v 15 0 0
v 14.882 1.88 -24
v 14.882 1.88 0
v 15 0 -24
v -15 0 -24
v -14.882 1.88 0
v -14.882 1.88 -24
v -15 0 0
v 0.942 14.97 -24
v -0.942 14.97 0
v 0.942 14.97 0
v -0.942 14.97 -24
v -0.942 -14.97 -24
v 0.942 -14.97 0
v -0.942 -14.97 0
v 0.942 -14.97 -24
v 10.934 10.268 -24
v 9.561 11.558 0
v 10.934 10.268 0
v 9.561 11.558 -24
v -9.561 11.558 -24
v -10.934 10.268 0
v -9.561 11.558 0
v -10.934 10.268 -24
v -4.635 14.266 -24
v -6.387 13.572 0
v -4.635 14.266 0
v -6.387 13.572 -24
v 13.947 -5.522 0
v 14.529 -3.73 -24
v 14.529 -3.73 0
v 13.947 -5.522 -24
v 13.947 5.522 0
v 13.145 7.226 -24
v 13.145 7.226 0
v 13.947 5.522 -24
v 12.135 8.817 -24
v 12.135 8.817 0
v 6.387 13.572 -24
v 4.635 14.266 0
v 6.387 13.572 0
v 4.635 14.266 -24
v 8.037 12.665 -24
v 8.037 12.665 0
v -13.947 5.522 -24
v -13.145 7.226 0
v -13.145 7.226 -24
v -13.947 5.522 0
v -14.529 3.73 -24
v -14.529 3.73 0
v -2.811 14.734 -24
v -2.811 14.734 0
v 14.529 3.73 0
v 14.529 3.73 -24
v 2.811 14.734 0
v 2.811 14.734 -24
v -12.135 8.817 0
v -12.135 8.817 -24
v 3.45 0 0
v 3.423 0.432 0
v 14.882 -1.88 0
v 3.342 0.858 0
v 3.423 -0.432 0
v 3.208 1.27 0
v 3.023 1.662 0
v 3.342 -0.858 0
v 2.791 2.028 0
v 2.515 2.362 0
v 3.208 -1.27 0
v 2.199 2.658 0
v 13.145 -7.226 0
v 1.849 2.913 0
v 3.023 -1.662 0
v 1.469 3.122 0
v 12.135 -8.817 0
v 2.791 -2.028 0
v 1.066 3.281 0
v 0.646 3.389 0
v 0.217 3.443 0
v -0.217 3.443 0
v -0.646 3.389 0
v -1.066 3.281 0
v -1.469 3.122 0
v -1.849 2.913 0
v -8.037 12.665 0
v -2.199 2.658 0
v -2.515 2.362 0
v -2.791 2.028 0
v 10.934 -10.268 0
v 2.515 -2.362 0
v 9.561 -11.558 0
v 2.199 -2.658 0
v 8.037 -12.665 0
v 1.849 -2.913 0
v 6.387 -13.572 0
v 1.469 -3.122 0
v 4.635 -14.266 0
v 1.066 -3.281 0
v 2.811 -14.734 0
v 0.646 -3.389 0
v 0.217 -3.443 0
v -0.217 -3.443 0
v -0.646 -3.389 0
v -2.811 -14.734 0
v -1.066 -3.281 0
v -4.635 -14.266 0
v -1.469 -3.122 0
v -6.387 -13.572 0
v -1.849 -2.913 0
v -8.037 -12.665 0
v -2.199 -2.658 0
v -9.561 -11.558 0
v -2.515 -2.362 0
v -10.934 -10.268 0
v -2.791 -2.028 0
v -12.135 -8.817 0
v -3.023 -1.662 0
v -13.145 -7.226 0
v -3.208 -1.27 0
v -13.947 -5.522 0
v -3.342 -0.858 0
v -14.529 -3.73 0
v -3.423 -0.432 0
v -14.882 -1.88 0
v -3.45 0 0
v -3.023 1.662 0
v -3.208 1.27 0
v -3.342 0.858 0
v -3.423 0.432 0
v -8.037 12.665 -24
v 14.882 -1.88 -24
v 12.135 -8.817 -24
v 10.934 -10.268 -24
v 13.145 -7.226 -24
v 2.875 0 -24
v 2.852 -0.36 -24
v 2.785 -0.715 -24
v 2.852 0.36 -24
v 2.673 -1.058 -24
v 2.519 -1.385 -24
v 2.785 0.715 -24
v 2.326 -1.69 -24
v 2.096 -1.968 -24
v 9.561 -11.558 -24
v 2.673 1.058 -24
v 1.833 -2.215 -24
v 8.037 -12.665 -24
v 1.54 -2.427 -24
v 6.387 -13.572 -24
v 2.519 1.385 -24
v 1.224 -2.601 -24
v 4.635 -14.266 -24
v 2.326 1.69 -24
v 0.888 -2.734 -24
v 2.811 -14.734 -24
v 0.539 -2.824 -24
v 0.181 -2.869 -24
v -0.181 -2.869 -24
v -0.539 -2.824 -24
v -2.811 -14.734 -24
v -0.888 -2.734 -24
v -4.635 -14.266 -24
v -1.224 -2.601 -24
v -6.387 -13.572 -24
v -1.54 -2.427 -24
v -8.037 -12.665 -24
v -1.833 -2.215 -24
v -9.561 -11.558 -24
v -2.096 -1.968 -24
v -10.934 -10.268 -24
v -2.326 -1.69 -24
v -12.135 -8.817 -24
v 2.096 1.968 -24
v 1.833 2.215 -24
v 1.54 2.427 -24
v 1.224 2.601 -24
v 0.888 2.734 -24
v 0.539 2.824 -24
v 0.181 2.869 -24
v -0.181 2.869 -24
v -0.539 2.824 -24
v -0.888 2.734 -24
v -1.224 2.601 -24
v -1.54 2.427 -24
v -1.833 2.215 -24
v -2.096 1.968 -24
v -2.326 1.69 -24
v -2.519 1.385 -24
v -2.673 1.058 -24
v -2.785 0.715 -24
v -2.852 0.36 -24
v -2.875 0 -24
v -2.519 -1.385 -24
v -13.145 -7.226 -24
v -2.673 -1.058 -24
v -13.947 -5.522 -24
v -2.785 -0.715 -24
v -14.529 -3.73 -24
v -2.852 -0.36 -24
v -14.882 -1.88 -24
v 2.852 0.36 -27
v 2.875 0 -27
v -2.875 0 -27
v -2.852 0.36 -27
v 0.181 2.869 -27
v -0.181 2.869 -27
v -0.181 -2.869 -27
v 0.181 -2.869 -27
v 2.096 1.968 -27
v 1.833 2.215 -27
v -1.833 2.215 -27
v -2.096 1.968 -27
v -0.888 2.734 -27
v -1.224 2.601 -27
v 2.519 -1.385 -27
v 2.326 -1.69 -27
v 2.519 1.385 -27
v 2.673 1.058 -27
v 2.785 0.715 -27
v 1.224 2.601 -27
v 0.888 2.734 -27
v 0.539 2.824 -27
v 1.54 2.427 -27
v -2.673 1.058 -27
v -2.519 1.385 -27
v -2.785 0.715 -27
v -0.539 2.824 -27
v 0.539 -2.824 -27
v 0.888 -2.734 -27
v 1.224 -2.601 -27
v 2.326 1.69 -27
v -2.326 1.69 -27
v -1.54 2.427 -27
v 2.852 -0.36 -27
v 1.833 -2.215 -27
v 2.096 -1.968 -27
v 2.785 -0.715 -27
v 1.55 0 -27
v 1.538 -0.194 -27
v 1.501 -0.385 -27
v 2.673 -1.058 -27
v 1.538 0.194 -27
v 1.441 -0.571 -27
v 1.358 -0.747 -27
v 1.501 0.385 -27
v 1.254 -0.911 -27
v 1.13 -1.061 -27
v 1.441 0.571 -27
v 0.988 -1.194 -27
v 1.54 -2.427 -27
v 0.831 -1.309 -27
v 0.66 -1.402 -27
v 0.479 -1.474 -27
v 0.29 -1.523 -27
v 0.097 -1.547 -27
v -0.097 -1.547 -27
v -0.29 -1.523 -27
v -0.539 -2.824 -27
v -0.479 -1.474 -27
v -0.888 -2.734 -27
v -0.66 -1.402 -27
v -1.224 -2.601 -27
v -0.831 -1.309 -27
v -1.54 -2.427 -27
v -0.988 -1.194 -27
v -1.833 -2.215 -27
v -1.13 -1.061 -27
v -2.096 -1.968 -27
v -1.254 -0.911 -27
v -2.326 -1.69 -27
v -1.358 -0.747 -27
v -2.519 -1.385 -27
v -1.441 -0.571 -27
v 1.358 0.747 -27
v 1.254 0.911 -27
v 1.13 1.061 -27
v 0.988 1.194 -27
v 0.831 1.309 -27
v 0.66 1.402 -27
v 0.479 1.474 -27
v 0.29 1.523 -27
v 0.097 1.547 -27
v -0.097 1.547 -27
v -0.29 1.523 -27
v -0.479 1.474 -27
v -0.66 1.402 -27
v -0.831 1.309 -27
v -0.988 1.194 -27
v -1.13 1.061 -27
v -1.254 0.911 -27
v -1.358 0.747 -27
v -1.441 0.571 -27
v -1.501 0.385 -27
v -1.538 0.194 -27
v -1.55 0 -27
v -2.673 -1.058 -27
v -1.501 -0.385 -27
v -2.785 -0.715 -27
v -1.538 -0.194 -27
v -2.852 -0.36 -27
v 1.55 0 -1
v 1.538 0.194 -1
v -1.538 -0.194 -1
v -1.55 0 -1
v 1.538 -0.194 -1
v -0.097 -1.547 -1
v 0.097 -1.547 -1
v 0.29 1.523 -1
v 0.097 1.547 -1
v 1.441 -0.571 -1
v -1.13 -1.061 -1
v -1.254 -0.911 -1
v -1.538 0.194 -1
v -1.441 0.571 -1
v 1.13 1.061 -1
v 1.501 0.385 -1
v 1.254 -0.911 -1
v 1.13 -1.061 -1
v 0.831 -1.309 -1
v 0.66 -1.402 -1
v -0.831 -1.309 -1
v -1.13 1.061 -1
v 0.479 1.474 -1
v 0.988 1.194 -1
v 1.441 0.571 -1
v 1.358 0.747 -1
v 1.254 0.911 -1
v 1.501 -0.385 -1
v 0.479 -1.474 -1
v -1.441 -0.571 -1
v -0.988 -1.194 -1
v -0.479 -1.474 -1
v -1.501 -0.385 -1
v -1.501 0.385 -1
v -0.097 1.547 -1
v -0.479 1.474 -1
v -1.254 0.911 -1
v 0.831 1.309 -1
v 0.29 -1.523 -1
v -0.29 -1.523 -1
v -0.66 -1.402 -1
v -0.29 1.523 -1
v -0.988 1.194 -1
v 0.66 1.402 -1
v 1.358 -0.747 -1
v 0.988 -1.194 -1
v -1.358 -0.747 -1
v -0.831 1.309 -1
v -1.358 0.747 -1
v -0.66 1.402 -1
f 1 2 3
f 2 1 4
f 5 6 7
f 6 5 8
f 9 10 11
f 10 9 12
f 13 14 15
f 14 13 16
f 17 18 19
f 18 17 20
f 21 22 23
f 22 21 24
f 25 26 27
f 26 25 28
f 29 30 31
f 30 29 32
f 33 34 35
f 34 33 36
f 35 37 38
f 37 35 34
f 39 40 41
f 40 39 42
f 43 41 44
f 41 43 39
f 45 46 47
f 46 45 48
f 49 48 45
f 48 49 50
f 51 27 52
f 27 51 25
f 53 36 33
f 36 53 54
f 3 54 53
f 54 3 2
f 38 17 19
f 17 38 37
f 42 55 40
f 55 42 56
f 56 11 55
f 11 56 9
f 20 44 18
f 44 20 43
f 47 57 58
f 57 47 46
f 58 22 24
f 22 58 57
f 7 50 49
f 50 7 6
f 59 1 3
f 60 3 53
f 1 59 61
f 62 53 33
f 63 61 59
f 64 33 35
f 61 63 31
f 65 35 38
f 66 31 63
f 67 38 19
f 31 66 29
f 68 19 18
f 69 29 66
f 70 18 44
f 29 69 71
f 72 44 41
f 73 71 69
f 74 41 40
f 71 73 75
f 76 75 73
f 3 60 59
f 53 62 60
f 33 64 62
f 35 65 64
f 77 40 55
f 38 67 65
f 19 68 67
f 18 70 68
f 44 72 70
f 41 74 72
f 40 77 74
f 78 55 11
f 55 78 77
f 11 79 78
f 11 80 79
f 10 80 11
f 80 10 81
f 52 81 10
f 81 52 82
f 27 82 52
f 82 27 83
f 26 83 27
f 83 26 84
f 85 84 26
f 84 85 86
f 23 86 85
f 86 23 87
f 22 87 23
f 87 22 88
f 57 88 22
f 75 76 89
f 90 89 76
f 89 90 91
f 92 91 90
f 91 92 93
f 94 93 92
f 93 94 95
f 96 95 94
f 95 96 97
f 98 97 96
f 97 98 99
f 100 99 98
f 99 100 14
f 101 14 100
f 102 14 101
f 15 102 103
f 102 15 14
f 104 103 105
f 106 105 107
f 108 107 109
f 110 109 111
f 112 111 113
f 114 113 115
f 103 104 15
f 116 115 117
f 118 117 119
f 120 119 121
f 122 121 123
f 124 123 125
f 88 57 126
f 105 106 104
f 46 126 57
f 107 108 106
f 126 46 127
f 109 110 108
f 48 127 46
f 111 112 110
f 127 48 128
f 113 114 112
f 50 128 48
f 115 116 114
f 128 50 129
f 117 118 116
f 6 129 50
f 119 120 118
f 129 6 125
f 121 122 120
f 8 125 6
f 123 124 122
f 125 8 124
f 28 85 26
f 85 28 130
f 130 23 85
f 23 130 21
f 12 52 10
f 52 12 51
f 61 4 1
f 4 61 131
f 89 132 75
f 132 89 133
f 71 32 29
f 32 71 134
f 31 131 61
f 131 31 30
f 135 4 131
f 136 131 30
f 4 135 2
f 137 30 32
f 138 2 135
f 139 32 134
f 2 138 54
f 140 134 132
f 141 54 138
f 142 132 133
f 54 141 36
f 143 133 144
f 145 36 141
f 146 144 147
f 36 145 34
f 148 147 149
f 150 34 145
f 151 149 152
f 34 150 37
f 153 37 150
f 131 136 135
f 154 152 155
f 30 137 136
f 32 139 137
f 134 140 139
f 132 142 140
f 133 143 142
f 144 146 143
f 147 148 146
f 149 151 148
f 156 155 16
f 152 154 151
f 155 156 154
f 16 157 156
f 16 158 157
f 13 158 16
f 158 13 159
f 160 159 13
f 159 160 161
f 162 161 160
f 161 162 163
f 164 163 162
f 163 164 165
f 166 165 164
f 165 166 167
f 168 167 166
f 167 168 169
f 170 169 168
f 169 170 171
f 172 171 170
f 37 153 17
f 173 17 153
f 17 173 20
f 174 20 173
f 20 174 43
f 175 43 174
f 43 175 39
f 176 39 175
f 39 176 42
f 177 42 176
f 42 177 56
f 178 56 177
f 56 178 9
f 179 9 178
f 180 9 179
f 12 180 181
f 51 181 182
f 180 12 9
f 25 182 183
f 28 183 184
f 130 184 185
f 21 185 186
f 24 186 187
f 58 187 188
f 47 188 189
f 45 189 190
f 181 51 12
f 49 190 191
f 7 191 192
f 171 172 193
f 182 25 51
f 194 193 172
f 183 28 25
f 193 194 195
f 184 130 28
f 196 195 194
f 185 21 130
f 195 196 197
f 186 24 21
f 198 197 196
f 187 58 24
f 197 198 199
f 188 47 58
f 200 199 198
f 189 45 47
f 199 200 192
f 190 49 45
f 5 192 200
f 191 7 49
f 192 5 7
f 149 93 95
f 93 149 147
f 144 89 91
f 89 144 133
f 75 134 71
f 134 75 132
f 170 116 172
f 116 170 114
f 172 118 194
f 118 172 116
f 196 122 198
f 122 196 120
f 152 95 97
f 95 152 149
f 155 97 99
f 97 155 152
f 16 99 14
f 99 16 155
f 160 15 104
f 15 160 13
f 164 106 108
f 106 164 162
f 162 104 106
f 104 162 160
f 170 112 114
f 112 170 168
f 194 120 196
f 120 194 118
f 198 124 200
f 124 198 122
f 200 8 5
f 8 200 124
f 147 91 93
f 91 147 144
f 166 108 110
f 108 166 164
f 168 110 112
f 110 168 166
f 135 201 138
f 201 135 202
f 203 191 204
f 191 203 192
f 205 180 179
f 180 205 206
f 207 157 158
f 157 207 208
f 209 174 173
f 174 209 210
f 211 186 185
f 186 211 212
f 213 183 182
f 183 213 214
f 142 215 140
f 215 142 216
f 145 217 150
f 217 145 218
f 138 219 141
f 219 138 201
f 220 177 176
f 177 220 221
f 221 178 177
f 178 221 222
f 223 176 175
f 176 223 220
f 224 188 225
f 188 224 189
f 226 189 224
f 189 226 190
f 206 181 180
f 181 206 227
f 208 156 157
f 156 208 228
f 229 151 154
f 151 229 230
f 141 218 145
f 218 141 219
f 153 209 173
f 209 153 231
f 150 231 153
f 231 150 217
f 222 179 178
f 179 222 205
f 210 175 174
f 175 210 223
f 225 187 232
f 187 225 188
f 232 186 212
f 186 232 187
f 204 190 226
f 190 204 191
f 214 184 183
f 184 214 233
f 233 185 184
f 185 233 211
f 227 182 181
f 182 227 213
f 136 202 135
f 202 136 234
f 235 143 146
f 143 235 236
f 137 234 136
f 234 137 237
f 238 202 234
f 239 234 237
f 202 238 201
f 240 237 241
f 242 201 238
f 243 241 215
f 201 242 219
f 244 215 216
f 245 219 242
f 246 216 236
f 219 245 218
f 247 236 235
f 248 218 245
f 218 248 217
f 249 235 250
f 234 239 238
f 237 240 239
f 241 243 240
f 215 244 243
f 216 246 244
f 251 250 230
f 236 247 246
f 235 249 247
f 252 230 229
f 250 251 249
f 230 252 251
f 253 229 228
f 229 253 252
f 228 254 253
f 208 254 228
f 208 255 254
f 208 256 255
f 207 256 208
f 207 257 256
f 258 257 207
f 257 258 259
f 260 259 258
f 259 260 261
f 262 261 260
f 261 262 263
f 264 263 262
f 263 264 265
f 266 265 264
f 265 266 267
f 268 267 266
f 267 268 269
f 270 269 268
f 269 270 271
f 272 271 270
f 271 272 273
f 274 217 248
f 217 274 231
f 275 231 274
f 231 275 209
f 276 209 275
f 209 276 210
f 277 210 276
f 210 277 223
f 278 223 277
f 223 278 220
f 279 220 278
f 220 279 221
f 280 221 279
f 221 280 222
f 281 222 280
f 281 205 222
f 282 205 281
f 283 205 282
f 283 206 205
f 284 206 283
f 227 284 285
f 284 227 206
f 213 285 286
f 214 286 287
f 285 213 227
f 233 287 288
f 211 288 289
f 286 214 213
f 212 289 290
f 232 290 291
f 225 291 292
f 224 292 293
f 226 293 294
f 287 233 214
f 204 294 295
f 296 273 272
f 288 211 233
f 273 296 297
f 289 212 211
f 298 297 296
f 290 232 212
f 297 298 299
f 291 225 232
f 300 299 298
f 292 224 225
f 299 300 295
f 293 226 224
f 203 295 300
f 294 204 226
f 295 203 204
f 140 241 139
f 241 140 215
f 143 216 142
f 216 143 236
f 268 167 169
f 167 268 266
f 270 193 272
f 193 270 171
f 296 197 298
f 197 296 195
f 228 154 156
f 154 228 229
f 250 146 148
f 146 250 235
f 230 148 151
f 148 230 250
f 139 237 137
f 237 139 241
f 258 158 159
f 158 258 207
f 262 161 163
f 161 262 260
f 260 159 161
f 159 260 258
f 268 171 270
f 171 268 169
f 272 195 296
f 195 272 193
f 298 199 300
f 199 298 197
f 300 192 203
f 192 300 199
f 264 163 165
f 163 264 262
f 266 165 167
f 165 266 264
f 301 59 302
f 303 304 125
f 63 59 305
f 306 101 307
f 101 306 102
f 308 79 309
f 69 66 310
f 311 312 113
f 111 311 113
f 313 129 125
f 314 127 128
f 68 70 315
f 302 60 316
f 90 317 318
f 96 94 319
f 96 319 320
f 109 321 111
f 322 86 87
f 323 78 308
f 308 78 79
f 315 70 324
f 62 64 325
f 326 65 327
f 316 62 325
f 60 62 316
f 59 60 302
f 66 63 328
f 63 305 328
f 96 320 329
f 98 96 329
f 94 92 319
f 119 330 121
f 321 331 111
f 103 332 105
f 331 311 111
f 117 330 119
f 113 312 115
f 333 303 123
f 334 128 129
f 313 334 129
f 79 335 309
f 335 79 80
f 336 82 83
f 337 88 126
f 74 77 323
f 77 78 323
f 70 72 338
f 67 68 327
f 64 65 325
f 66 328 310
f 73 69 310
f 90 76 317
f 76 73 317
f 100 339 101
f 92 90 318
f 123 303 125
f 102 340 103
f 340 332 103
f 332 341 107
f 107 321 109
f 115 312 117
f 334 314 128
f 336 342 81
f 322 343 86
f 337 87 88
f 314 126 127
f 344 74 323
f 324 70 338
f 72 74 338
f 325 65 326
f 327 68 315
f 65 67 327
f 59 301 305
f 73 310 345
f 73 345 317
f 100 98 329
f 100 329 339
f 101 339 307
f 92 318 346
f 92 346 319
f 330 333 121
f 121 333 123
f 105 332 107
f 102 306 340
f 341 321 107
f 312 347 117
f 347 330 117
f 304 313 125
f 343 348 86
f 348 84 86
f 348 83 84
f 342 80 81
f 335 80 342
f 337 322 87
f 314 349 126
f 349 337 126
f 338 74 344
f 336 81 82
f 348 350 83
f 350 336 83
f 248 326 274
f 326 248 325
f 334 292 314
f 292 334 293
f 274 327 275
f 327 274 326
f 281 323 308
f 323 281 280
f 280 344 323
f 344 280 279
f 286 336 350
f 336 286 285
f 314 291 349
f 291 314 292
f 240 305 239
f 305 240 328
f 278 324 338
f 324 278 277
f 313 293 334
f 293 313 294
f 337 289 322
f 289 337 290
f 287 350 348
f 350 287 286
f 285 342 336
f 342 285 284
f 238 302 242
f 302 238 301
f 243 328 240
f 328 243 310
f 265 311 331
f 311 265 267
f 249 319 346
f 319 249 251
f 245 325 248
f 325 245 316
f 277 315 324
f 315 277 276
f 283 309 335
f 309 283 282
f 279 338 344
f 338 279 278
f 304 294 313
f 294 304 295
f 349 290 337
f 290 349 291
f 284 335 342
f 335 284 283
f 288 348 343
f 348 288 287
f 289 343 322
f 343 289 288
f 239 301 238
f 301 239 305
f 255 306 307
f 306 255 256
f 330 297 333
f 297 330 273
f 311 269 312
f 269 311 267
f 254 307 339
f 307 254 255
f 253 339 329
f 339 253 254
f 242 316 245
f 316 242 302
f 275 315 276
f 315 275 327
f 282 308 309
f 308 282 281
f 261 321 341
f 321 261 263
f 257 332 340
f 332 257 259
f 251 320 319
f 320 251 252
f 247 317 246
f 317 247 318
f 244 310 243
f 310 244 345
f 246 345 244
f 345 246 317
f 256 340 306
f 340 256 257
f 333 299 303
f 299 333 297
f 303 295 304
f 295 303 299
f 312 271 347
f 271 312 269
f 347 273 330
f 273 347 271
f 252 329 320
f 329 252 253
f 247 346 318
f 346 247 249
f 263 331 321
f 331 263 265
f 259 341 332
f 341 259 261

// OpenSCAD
$fn = 50;

difference() {
	union() {
		translate(v = [0, 0, -24.0]) {
			cylinder(h = 24, r = 15.0);
		}
		#translate(v = [0, 0, -27.0]) {
			cylinder(h = 27, r = 2.875);
		}
	}
	union() {
		translate(v = [0, 0, 0]) {
			rotate(a = [0, 0, 0]) {
				difference() {
					union() {
						translate(v = [0, 0, -27.0]) {
							cylinder(h = 27, r = 1.25);
						}
						translate(v = [0, 0, -1.0]) {
							cylinder(h = 1.0, r1 = 1.55, r2 = 3.45);
						}
						translate(v = [0, 0, -27.0]) {
							cylinder(h = 27, r = 1.55);
						}
						translate(v = [0, 0, -27.0]) {
							cylinder(h = 27, r = 1.25);
						}
					}
					union();
				}
			}
		}
	}
}
